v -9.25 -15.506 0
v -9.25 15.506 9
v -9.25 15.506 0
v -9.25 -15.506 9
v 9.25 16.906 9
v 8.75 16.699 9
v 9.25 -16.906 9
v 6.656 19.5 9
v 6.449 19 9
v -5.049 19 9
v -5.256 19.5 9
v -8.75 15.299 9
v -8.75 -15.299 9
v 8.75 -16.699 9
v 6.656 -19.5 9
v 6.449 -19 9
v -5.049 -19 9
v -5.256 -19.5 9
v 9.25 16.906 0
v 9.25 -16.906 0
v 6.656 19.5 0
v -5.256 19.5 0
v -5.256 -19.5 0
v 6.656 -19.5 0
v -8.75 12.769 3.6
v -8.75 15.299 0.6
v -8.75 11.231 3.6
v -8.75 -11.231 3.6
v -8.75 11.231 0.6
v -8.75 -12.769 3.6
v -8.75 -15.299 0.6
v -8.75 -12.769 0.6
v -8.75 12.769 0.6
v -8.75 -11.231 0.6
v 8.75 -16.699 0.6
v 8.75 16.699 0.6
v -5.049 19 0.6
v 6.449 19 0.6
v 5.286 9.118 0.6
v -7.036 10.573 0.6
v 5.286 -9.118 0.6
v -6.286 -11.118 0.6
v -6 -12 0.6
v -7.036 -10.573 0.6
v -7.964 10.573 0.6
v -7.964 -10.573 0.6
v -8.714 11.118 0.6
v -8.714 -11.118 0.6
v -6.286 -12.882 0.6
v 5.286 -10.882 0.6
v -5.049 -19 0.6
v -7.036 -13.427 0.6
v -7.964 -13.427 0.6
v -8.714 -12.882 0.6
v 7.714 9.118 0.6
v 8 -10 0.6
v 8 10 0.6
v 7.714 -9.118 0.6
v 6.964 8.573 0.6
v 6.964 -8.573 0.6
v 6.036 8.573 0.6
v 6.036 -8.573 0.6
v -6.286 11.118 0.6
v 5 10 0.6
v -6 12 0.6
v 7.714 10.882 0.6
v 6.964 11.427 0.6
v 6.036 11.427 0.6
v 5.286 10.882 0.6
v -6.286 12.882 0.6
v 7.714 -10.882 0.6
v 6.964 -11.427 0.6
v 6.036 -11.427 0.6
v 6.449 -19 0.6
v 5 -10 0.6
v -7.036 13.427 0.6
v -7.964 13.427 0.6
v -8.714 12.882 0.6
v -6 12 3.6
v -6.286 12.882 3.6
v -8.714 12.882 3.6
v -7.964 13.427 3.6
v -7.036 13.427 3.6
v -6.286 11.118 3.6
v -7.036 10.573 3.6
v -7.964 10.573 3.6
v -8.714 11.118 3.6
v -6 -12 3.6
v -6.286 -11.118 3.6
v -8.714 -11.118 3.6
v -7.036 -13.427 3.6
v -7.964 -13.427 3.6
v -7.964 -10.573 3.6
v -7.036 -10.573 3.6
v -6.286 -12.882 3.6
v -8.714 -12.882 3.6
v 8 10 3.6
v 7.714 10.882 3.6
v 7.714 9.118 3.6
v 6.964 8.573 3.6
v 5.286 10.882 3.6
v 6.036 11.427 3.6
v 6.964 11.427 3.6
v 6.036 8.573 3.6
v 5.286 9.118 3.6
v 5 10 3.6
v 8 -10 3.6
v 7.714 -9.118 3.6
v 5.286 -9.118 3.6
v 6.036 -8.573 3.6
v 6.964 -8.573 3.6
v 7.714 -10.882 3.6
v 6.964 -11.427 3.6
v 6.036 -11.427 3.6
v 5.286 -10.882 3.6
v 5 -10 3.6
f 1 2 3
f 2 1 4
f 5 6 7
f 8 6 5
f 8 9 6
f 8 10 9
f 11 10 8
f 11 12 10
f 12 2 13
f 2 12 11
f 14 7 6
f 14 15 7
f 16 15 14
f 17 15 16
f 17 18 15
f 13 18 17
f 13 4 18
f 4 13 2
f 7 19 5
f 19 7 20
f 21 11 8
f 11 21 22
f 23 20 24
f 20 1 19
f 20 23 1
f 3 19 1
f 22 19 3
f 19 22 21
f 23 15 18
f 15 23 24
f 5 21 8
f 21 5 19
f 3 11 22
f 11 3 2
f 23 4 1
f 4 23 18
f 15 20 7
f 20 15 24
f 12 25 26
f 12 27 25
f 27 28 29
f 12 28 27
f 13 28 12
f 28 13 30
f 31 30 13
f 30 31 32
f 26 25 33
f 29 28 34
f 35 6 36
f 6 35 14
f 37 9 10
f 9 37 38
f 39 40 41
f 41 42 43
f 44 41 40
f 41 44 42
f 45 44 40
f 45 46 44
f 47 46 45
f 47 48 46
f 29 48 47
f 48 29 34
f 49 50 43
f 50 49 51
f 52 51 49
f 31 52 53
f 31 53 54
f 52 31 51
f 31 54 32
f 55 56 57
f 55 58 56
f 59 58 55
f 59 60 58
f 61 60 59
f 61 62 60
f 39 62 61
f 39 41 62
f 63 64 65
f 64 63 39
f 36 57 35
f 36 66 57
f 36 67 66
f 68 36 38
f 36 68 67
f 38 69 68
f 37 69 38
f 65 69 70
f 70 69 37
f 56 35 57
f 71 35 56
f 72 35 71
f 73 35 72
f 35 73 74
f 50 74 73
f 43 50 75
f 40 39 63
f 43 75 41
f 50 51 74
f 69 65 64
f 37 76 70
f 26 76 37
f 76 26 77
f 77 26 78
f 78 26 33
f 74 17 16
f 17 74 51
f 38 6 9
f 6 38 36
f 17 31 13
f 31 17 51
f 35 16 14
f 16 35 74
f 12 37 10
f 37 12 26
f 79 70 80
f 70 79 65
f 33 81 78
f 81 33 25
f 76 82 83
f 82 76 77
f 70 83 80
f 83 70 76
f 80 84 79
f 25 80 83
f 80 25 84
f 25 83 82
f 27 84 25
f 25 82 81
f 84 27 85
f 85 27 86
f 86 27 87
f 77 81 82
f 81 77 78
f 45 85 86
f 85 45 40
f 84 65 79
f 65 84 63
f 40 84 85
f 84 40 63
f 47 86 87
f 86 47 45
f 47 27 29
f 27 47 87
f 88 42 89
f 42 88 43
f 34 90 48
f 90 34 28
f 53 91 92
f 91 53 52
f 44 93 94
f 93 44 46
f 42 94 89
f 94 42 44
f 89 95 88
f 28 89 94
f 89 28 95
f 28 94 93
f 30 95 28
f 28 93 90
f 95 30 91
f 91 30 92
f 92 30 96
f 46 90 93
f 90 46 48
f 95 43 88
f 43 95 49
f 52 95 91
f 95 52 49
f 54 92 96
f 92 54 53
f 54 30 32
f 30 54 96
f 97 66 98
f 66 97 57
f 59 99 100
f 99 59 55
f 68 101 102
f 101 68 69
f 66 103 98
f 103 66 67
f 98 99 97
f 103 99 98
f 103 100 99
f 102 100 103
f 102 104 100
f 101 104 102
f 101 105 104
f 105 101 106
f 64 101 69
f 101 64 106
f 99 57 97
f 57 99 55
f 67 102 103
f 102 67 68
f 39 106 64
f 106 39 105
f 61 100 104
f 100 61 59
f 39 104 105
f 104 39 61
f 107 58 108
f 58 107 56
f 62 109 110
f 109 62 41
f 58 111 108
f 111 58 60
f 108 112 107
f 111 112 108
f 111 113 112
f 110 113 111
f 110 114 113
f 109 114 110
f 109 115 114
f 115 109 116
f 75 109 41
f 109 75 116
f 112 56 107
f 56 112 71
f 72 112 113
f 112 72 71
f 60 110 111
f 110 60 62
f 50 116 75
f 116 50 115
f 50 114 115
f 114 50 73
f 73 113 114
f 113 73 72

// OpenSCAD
//projection(cut=true) translate([0,0,-1])
union() {
    difference() {
        translate([0,0,4.5]) {
            intersection() {
                cube([18.5,39,9], center=true);
                translate([0.7,0,0]) rotate(45) {
                    cube(36, center=true);
                }
            }
        }
        translate([0,0,5.1]) {
            intersection() {
                cube([17.5,38,9], center=true);
                translate([0.7,0,0]) rotate(45) {
                    cube(35, center=true);
                }
            }
        }
    }

    translate([-7.5,  +12,1.8]) cylinder(3.6,1.5,1.5,center=true,$fn=10);
    translate([-7.5,  -12,1.8]) cylinder(3.6,1.5,1.5,center=true,$fn=10);
    translate([+6.5,  +10,1.8]) cylinder(3.6,1.5,1.5,center=true,$fn=10);
    translate([+6.5,  -10,1.8]) cylinder(3.6,1.5,1.5,center=true,$fn=10);
}
